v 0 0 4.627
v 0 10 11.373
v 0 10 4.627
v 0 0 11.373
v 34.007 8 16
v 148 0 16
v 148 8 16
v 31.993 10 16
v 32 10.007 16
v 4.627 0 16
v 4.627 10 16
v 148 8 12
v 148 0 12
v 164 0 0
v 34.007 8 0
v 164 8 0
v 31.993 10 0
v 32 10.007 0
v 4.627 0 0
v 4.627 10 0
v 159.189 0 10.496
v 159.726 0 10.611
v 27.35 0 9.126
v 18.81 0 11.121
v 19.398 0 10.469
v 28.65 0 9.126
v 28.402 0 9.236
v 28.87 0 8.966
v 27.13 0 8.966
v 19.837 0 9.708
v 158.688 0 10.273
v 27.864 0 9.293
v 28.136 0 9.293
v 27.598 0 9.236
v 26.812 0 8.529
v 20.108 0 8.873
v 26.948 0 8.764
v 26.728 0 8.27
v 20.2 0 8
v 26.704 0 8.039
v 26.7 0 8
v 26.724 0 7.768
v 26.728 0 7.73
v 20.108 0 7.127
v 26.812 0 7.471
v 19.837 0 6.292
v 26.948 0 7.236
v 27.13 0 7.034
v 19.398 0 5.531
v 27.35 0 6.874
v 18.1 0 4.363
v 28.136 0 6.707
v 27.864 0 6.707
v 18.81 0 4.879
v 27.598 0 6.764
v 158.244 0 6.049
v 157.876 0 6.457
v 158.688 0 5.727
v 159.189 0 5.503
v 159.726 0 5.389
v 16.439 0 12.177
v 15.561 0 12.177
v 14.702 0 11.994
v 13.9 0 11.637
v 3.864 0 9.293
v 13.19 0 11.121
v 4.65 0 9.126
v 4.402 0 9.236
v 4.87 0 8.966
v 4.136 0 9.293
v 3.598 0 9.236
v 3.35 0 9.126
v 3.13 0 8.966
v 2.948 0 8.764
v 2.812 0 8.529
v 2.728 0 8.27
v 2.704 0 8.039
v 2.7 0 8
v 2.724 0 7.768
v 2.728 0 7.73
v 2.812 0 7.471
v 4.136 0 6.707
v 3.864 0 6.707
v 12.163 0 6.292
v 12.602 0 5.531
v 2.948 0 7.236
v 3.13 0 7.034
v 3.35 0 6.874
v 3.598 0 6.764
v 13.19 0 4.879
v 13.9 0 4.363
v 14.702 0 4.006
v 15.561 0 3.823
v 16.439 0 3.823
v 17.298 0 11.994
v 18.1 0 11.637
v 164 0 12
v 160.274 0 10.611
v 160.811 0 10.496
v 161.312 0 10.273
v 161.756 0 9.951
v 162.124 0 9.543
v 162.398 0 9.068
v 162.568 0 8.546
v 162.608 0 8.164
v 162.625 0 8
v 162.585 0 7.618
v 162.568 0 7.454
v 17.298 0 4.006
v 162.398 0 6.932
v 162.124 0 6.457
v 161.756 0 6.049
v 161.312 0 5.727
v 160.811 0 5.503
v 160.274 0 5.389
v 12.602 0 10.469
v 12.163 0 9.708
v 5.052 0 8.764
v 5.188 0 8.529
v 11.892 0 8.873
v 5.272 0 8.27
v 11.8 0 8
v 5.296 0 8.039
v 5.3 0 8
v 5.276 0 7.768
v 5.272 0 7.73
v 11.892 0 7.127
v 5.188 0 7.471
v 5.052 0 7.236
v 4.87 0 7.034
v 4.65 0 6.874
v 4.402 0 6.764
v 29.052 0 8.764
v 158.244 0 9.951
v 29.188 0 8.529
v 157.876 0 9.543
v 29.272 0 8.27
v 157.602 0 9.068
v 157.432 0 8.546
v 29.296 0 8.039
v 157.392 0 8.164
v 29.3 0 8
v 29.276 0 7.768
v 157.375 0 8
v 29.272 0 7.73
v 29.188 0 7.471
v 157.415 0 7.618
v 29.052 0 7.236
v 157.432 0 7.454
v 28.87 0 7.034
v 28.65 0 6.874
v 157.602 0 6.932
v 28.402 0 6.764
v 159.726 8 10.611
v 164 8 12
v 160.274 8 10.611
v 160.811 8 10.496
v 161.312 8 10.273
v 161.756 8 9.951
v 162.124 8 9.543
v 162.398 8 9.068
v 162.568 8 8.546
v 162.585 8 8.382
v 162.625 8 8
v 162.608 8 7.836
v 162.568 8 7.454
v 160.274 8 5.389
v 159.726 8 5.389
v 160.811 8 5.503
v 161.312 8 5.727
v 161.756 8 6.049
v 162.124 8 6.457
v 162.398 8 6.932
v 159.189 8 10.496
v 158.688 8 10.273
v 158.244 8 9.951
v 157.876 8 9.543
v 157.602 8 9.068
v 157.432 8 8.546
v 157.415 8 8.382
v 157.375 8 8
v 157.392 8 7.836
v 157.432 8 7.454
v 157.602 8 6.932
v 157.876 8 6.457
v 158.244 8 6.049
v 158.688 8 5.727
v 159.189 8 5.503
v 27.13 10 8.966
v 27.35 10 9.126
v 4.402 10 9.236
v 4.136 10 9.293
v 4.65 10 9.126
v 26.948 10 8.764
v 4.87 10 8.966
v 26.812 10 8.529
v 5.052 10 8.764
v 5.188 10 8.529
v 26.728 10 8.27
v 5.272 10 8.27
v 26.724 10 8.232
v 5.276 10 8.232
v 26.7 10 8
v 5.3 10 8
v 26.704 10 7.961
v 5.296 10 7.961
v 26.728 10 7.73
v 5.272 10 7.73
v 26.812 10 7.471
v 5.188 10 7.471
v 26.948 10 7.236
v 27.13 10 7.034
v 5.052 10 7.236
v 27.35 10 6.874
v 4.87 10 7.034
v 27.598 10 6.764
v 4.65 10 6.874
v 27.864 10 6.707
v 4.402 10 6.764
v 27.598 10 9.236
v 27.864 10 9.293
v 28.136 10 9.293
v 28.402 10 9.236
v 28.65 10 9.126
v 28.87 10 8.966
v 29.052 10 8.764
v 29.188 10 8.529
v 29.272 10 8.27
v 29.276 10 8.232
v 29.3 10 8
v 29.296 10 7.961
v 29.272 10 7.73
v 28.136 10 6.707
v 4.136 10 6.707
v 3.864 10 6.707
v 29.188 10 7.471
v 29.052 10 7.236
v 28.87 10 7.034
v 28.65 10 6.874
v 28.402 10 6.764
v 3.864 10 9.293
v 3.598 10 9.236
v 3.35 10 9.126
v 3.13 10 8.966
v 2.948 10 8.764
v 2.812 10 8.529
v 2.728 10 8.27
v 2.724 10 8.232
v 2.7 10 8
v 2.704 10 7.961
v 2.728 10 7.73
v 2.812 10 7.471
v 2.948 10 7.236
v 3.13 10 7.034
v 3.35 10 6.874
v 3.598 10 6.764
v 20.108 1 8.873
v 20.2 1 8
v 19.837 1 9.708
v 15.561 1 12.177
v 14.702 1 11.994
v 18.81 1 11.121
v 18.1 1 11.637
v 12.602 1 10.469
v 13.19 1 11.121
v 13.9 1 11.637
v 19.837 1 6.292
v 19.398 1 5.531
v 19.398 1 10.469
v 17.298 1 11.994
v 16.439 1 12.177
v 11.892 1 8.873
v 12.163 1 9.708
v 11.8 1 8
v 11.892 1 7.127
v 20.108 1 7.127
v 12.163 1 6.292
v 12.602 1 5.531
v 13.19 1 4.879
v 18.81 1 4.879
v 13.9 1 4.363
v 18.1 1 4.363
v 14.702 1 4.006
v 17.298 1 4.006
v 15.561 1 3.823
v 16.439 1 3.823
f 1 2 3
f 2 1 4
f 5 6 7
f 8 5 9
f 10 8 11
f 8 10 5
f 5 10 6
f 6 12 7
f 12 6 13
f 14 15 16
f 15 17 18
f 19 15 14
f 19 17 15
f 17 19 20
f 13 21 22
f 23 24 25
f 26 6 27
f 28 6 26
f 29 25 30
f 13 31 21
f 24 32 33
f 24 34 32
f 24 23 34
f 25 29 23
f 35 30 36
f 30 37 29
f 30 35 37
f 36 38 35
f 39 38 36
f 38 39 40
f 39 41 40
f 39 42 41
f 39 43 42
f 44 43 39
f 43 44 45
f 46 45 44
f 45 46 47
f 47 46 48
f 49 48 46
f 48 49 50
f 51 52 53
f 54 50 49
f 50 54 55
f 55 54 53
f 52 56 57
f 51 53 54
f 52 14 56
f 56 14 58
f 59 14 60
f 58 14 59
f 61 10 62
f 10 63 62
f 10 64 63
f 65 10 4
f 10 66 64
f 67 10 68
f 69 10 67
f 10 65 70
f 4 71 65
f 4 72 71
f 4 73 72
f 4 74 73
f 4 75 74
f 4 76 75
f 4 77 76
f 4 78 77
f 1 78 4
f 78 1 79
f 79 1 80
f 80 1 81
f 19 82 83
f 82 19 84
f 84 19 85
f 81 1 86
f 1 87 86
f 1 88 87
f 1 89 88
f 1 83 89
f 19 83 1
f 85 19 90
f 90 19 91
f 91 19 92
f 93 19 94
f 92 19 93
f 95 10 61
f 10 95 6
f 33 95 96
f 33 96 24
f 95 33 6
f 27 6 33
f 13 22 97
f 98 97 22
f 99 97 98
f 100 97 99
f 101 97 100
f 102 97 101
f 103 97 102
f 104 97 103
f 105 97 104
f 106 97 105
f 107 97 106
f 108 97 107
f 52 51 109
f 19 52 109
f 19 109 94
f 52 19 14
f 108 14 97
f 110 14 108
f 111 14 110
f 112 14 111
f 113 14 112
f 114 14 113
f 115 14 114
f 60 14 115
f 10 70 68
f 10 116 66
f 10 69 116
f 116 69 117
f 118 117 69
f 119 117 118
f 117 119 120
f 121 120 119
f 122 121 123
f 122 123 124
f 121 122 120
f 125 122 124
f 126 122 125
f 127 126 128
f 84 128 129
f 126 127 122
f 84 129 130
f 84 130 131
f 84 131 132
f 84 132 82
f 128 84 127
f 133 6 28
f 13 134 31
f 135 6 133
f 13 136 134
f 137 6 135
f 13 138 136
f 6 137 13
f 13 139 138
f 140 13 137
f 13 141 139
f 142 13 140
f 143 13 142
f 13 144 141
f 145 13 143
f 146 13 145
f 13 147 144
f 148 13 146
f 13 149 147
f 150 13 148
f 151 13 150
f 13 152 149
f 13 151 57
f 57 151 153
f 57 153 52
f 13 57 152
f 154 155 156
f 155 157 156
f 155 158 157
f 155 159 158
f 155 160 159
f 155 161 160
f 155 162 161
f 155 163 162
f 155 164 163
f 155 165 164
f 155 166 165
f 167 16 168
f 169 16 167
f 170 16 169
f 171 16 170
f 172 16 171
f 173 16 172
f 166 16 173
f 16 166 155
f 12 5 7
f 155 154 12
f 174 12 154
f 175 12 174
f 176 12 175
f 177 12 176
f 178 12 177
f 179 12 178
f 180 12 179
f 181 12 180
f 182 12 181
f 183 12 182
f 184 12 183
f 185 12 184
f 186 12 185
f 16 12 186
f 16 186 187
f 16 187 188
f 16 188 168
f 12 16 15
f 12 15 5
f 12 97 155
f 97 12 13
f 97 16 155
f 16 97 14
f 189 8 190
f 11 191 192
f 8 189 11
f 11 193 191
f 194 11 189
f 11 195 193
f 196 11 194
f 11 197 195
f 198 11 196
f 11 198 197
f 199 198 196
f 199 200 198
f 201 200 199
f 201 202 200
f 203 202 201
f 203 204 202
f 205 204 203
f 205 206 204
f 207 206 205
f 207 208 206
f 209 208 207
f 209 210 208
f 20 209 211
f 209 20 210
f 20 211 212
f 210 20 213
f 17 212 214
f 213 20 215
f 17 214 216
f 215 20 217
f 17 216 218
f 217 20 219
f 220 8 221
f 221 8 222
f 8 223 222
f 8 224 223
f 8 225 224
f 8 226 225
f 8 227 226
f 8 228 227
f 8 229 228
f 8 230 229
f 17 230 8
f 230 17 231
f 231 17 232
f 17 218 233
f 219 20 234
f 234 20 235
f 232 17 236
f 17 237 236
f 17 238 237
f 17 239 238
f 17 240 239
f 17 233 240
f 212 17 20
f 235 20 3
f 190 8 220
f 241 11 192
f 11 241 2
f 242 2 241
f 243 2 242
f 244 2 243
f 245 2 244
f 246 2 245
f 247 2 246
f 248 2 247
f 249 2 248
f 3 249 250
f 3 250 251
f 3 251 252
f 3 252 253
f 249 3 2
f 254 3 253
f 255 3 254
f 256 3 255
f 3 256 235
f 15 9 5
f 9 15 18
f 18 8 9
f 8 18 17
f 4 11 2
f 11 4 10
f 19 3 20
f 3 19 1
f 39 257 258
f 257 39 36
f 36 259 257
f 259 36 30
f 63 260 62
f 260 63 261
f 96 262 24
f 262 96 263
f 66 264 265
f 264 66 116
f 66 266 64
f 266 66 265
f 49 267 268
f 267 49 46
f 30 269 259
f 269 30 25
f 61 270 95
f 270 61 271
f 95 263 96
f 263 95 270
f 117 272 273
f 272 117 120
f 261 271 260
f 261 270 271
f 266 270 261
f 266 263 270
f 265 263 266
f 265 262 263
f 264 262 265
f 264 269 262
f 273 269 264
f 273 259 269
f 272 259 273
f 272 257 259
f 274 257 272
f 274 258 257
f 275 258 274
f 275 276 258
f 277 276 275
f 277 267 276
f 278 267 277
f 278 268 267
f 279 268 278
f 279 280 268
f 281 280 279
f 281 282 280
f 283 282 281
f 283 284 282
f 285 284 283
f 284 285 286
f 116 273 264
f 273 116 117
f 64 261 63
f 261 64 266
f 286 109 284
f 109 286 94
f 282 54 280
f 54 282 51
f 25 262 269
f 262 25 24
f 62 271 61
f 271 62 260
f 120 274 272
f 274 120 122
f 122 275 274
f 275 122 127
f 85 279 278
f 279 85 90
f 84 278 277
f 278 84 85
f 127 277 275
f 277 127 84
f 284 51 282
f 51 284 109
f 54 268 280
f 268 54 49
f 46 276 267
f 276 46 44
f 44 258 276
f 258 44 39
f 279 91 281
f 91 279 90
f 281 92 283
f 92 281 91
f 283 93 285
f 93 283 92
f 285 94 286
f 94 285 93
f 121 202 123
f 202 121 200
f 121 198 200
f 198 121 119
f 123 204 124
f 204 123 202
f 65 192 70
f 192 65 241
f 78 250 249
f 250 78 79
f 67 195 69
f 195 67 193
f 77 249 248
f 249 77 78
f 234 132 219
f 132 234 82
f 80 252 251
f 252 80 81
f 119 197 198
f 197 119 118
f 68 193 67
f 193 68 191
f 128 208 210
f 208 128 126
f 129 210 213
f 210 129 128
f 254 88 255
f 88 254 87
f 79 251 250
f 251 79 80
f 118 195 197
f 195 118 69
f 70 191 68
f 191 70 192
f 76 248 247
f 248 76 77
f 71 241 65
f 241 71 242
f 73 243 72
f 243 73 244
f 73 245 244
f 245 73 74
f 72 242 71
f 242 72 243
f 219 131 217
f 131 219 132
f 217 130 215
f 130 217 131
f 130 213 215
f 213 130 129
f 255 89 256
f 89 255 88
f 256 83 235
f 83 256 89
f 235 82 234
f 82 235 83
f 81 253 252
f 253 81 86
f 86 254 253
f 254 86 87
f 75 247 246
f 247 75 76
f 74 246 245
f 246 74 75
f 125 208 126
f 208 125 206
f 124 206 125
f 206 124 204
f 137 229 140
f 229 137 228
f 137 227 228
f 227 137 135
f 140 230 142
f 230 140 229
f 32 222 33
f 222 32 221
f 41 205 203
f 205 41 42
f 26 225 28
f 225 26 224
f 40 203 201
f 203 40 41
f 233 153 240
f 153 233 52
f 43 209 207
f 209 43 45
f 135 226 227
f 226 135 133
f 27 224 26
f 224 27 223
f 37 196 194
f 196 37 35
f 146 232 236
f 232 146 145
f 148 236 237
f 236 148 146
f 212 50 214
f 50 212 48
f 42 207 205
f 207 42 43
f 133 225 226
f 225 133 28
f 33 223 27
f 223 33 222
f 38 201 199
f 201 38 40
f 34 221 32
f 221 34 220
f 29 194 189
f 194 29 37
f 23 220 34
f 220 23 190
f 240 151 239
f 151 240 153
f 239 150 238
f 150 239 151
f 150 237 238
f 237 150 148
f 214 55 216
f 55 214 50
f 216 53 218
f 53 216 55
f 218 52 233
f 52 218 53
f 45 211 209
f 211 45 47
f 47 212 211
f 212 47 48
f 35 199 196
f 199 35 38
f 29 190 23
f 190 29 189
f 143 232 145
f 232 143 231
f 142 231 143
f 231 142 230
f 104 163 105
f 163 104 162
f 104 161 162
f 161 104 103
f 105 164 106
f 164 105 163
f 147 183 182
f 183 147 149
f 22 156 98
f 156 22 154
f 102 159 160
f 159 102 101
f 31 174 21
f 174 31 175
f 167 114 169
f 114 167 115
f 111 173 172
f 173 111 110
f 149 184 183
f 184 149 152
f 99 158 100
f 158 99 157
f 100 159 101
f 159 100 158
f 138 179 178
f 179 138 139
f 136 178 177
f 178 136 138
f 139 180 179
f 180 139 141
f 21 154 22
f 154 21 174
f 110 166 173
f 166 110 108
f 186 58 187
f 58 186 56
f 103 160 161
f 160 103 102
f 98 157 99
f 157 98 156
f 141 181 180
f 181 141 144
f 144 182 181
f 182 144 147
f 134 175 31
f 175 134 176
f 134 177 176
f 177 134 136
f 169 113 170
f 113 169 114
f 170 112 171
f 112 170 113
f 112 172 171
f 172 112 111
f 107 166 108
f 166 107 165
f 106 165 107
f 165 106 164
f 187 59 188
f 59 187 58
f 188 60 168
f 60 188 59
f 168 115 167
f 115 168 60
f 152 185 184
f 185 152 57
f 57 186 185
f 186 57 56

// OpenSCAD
// Description: Upper arm for Tapster 2 Plus
// Project home: http://tapsterbot.com

// Slicer settings
// Infill density: 0.5
// Fill pattern: line
// Top/bottom fill pattern: rectilinear

beam_width     = 8;
hole_diameter  = 5.25;
hole_radius    = hole_diameter / 2;
beam_length = beam_width * 20.5;



difference() {
    // Draw the beam...
    union(){
        cube([beam_length-16,beam_width,beam_width*2]);

        translate([0,0,0])
        cube([beam_length,beam_width,beam_width+4]);

        translate([0,6,0])
        cube([32,4,16]);

        translate([32.0,4.35,0])
        rotate([0,0,45])
        cube([4,4,16]);

        //rotate(90)
        //translate([-8,-beam_length,0])
        //cube([24,8,8]);
    }

    translate([-2,5,32])
    rotate([0,45,0])
    cube([32,32,32], center=true);

    translate([-2,5,-16])
    rotate([0,45,0])
    cube([32,32,32], center=true);

    // Servo mount - center
    rotate([90,0,0])
    translate([16,8,-1])
    cylinder(r=4.2, h=5, $fn=30);

    // Hole #1 for servo
    rotate([90,0,0])
    translate([4,8,-12])
    cylinder(r=1.3, h=14, $fn=30);

    // Hole #2 for servo
    rotate([90,0,0])
    translate([28,8,-12])
    cylinder(r=1.3, h=14, $fn=30);

    rotate([90,0,0])
    translate([beam_length-4,8,-14])
    cylinder(r=hole_radius, h=20, $fn=30);

}
